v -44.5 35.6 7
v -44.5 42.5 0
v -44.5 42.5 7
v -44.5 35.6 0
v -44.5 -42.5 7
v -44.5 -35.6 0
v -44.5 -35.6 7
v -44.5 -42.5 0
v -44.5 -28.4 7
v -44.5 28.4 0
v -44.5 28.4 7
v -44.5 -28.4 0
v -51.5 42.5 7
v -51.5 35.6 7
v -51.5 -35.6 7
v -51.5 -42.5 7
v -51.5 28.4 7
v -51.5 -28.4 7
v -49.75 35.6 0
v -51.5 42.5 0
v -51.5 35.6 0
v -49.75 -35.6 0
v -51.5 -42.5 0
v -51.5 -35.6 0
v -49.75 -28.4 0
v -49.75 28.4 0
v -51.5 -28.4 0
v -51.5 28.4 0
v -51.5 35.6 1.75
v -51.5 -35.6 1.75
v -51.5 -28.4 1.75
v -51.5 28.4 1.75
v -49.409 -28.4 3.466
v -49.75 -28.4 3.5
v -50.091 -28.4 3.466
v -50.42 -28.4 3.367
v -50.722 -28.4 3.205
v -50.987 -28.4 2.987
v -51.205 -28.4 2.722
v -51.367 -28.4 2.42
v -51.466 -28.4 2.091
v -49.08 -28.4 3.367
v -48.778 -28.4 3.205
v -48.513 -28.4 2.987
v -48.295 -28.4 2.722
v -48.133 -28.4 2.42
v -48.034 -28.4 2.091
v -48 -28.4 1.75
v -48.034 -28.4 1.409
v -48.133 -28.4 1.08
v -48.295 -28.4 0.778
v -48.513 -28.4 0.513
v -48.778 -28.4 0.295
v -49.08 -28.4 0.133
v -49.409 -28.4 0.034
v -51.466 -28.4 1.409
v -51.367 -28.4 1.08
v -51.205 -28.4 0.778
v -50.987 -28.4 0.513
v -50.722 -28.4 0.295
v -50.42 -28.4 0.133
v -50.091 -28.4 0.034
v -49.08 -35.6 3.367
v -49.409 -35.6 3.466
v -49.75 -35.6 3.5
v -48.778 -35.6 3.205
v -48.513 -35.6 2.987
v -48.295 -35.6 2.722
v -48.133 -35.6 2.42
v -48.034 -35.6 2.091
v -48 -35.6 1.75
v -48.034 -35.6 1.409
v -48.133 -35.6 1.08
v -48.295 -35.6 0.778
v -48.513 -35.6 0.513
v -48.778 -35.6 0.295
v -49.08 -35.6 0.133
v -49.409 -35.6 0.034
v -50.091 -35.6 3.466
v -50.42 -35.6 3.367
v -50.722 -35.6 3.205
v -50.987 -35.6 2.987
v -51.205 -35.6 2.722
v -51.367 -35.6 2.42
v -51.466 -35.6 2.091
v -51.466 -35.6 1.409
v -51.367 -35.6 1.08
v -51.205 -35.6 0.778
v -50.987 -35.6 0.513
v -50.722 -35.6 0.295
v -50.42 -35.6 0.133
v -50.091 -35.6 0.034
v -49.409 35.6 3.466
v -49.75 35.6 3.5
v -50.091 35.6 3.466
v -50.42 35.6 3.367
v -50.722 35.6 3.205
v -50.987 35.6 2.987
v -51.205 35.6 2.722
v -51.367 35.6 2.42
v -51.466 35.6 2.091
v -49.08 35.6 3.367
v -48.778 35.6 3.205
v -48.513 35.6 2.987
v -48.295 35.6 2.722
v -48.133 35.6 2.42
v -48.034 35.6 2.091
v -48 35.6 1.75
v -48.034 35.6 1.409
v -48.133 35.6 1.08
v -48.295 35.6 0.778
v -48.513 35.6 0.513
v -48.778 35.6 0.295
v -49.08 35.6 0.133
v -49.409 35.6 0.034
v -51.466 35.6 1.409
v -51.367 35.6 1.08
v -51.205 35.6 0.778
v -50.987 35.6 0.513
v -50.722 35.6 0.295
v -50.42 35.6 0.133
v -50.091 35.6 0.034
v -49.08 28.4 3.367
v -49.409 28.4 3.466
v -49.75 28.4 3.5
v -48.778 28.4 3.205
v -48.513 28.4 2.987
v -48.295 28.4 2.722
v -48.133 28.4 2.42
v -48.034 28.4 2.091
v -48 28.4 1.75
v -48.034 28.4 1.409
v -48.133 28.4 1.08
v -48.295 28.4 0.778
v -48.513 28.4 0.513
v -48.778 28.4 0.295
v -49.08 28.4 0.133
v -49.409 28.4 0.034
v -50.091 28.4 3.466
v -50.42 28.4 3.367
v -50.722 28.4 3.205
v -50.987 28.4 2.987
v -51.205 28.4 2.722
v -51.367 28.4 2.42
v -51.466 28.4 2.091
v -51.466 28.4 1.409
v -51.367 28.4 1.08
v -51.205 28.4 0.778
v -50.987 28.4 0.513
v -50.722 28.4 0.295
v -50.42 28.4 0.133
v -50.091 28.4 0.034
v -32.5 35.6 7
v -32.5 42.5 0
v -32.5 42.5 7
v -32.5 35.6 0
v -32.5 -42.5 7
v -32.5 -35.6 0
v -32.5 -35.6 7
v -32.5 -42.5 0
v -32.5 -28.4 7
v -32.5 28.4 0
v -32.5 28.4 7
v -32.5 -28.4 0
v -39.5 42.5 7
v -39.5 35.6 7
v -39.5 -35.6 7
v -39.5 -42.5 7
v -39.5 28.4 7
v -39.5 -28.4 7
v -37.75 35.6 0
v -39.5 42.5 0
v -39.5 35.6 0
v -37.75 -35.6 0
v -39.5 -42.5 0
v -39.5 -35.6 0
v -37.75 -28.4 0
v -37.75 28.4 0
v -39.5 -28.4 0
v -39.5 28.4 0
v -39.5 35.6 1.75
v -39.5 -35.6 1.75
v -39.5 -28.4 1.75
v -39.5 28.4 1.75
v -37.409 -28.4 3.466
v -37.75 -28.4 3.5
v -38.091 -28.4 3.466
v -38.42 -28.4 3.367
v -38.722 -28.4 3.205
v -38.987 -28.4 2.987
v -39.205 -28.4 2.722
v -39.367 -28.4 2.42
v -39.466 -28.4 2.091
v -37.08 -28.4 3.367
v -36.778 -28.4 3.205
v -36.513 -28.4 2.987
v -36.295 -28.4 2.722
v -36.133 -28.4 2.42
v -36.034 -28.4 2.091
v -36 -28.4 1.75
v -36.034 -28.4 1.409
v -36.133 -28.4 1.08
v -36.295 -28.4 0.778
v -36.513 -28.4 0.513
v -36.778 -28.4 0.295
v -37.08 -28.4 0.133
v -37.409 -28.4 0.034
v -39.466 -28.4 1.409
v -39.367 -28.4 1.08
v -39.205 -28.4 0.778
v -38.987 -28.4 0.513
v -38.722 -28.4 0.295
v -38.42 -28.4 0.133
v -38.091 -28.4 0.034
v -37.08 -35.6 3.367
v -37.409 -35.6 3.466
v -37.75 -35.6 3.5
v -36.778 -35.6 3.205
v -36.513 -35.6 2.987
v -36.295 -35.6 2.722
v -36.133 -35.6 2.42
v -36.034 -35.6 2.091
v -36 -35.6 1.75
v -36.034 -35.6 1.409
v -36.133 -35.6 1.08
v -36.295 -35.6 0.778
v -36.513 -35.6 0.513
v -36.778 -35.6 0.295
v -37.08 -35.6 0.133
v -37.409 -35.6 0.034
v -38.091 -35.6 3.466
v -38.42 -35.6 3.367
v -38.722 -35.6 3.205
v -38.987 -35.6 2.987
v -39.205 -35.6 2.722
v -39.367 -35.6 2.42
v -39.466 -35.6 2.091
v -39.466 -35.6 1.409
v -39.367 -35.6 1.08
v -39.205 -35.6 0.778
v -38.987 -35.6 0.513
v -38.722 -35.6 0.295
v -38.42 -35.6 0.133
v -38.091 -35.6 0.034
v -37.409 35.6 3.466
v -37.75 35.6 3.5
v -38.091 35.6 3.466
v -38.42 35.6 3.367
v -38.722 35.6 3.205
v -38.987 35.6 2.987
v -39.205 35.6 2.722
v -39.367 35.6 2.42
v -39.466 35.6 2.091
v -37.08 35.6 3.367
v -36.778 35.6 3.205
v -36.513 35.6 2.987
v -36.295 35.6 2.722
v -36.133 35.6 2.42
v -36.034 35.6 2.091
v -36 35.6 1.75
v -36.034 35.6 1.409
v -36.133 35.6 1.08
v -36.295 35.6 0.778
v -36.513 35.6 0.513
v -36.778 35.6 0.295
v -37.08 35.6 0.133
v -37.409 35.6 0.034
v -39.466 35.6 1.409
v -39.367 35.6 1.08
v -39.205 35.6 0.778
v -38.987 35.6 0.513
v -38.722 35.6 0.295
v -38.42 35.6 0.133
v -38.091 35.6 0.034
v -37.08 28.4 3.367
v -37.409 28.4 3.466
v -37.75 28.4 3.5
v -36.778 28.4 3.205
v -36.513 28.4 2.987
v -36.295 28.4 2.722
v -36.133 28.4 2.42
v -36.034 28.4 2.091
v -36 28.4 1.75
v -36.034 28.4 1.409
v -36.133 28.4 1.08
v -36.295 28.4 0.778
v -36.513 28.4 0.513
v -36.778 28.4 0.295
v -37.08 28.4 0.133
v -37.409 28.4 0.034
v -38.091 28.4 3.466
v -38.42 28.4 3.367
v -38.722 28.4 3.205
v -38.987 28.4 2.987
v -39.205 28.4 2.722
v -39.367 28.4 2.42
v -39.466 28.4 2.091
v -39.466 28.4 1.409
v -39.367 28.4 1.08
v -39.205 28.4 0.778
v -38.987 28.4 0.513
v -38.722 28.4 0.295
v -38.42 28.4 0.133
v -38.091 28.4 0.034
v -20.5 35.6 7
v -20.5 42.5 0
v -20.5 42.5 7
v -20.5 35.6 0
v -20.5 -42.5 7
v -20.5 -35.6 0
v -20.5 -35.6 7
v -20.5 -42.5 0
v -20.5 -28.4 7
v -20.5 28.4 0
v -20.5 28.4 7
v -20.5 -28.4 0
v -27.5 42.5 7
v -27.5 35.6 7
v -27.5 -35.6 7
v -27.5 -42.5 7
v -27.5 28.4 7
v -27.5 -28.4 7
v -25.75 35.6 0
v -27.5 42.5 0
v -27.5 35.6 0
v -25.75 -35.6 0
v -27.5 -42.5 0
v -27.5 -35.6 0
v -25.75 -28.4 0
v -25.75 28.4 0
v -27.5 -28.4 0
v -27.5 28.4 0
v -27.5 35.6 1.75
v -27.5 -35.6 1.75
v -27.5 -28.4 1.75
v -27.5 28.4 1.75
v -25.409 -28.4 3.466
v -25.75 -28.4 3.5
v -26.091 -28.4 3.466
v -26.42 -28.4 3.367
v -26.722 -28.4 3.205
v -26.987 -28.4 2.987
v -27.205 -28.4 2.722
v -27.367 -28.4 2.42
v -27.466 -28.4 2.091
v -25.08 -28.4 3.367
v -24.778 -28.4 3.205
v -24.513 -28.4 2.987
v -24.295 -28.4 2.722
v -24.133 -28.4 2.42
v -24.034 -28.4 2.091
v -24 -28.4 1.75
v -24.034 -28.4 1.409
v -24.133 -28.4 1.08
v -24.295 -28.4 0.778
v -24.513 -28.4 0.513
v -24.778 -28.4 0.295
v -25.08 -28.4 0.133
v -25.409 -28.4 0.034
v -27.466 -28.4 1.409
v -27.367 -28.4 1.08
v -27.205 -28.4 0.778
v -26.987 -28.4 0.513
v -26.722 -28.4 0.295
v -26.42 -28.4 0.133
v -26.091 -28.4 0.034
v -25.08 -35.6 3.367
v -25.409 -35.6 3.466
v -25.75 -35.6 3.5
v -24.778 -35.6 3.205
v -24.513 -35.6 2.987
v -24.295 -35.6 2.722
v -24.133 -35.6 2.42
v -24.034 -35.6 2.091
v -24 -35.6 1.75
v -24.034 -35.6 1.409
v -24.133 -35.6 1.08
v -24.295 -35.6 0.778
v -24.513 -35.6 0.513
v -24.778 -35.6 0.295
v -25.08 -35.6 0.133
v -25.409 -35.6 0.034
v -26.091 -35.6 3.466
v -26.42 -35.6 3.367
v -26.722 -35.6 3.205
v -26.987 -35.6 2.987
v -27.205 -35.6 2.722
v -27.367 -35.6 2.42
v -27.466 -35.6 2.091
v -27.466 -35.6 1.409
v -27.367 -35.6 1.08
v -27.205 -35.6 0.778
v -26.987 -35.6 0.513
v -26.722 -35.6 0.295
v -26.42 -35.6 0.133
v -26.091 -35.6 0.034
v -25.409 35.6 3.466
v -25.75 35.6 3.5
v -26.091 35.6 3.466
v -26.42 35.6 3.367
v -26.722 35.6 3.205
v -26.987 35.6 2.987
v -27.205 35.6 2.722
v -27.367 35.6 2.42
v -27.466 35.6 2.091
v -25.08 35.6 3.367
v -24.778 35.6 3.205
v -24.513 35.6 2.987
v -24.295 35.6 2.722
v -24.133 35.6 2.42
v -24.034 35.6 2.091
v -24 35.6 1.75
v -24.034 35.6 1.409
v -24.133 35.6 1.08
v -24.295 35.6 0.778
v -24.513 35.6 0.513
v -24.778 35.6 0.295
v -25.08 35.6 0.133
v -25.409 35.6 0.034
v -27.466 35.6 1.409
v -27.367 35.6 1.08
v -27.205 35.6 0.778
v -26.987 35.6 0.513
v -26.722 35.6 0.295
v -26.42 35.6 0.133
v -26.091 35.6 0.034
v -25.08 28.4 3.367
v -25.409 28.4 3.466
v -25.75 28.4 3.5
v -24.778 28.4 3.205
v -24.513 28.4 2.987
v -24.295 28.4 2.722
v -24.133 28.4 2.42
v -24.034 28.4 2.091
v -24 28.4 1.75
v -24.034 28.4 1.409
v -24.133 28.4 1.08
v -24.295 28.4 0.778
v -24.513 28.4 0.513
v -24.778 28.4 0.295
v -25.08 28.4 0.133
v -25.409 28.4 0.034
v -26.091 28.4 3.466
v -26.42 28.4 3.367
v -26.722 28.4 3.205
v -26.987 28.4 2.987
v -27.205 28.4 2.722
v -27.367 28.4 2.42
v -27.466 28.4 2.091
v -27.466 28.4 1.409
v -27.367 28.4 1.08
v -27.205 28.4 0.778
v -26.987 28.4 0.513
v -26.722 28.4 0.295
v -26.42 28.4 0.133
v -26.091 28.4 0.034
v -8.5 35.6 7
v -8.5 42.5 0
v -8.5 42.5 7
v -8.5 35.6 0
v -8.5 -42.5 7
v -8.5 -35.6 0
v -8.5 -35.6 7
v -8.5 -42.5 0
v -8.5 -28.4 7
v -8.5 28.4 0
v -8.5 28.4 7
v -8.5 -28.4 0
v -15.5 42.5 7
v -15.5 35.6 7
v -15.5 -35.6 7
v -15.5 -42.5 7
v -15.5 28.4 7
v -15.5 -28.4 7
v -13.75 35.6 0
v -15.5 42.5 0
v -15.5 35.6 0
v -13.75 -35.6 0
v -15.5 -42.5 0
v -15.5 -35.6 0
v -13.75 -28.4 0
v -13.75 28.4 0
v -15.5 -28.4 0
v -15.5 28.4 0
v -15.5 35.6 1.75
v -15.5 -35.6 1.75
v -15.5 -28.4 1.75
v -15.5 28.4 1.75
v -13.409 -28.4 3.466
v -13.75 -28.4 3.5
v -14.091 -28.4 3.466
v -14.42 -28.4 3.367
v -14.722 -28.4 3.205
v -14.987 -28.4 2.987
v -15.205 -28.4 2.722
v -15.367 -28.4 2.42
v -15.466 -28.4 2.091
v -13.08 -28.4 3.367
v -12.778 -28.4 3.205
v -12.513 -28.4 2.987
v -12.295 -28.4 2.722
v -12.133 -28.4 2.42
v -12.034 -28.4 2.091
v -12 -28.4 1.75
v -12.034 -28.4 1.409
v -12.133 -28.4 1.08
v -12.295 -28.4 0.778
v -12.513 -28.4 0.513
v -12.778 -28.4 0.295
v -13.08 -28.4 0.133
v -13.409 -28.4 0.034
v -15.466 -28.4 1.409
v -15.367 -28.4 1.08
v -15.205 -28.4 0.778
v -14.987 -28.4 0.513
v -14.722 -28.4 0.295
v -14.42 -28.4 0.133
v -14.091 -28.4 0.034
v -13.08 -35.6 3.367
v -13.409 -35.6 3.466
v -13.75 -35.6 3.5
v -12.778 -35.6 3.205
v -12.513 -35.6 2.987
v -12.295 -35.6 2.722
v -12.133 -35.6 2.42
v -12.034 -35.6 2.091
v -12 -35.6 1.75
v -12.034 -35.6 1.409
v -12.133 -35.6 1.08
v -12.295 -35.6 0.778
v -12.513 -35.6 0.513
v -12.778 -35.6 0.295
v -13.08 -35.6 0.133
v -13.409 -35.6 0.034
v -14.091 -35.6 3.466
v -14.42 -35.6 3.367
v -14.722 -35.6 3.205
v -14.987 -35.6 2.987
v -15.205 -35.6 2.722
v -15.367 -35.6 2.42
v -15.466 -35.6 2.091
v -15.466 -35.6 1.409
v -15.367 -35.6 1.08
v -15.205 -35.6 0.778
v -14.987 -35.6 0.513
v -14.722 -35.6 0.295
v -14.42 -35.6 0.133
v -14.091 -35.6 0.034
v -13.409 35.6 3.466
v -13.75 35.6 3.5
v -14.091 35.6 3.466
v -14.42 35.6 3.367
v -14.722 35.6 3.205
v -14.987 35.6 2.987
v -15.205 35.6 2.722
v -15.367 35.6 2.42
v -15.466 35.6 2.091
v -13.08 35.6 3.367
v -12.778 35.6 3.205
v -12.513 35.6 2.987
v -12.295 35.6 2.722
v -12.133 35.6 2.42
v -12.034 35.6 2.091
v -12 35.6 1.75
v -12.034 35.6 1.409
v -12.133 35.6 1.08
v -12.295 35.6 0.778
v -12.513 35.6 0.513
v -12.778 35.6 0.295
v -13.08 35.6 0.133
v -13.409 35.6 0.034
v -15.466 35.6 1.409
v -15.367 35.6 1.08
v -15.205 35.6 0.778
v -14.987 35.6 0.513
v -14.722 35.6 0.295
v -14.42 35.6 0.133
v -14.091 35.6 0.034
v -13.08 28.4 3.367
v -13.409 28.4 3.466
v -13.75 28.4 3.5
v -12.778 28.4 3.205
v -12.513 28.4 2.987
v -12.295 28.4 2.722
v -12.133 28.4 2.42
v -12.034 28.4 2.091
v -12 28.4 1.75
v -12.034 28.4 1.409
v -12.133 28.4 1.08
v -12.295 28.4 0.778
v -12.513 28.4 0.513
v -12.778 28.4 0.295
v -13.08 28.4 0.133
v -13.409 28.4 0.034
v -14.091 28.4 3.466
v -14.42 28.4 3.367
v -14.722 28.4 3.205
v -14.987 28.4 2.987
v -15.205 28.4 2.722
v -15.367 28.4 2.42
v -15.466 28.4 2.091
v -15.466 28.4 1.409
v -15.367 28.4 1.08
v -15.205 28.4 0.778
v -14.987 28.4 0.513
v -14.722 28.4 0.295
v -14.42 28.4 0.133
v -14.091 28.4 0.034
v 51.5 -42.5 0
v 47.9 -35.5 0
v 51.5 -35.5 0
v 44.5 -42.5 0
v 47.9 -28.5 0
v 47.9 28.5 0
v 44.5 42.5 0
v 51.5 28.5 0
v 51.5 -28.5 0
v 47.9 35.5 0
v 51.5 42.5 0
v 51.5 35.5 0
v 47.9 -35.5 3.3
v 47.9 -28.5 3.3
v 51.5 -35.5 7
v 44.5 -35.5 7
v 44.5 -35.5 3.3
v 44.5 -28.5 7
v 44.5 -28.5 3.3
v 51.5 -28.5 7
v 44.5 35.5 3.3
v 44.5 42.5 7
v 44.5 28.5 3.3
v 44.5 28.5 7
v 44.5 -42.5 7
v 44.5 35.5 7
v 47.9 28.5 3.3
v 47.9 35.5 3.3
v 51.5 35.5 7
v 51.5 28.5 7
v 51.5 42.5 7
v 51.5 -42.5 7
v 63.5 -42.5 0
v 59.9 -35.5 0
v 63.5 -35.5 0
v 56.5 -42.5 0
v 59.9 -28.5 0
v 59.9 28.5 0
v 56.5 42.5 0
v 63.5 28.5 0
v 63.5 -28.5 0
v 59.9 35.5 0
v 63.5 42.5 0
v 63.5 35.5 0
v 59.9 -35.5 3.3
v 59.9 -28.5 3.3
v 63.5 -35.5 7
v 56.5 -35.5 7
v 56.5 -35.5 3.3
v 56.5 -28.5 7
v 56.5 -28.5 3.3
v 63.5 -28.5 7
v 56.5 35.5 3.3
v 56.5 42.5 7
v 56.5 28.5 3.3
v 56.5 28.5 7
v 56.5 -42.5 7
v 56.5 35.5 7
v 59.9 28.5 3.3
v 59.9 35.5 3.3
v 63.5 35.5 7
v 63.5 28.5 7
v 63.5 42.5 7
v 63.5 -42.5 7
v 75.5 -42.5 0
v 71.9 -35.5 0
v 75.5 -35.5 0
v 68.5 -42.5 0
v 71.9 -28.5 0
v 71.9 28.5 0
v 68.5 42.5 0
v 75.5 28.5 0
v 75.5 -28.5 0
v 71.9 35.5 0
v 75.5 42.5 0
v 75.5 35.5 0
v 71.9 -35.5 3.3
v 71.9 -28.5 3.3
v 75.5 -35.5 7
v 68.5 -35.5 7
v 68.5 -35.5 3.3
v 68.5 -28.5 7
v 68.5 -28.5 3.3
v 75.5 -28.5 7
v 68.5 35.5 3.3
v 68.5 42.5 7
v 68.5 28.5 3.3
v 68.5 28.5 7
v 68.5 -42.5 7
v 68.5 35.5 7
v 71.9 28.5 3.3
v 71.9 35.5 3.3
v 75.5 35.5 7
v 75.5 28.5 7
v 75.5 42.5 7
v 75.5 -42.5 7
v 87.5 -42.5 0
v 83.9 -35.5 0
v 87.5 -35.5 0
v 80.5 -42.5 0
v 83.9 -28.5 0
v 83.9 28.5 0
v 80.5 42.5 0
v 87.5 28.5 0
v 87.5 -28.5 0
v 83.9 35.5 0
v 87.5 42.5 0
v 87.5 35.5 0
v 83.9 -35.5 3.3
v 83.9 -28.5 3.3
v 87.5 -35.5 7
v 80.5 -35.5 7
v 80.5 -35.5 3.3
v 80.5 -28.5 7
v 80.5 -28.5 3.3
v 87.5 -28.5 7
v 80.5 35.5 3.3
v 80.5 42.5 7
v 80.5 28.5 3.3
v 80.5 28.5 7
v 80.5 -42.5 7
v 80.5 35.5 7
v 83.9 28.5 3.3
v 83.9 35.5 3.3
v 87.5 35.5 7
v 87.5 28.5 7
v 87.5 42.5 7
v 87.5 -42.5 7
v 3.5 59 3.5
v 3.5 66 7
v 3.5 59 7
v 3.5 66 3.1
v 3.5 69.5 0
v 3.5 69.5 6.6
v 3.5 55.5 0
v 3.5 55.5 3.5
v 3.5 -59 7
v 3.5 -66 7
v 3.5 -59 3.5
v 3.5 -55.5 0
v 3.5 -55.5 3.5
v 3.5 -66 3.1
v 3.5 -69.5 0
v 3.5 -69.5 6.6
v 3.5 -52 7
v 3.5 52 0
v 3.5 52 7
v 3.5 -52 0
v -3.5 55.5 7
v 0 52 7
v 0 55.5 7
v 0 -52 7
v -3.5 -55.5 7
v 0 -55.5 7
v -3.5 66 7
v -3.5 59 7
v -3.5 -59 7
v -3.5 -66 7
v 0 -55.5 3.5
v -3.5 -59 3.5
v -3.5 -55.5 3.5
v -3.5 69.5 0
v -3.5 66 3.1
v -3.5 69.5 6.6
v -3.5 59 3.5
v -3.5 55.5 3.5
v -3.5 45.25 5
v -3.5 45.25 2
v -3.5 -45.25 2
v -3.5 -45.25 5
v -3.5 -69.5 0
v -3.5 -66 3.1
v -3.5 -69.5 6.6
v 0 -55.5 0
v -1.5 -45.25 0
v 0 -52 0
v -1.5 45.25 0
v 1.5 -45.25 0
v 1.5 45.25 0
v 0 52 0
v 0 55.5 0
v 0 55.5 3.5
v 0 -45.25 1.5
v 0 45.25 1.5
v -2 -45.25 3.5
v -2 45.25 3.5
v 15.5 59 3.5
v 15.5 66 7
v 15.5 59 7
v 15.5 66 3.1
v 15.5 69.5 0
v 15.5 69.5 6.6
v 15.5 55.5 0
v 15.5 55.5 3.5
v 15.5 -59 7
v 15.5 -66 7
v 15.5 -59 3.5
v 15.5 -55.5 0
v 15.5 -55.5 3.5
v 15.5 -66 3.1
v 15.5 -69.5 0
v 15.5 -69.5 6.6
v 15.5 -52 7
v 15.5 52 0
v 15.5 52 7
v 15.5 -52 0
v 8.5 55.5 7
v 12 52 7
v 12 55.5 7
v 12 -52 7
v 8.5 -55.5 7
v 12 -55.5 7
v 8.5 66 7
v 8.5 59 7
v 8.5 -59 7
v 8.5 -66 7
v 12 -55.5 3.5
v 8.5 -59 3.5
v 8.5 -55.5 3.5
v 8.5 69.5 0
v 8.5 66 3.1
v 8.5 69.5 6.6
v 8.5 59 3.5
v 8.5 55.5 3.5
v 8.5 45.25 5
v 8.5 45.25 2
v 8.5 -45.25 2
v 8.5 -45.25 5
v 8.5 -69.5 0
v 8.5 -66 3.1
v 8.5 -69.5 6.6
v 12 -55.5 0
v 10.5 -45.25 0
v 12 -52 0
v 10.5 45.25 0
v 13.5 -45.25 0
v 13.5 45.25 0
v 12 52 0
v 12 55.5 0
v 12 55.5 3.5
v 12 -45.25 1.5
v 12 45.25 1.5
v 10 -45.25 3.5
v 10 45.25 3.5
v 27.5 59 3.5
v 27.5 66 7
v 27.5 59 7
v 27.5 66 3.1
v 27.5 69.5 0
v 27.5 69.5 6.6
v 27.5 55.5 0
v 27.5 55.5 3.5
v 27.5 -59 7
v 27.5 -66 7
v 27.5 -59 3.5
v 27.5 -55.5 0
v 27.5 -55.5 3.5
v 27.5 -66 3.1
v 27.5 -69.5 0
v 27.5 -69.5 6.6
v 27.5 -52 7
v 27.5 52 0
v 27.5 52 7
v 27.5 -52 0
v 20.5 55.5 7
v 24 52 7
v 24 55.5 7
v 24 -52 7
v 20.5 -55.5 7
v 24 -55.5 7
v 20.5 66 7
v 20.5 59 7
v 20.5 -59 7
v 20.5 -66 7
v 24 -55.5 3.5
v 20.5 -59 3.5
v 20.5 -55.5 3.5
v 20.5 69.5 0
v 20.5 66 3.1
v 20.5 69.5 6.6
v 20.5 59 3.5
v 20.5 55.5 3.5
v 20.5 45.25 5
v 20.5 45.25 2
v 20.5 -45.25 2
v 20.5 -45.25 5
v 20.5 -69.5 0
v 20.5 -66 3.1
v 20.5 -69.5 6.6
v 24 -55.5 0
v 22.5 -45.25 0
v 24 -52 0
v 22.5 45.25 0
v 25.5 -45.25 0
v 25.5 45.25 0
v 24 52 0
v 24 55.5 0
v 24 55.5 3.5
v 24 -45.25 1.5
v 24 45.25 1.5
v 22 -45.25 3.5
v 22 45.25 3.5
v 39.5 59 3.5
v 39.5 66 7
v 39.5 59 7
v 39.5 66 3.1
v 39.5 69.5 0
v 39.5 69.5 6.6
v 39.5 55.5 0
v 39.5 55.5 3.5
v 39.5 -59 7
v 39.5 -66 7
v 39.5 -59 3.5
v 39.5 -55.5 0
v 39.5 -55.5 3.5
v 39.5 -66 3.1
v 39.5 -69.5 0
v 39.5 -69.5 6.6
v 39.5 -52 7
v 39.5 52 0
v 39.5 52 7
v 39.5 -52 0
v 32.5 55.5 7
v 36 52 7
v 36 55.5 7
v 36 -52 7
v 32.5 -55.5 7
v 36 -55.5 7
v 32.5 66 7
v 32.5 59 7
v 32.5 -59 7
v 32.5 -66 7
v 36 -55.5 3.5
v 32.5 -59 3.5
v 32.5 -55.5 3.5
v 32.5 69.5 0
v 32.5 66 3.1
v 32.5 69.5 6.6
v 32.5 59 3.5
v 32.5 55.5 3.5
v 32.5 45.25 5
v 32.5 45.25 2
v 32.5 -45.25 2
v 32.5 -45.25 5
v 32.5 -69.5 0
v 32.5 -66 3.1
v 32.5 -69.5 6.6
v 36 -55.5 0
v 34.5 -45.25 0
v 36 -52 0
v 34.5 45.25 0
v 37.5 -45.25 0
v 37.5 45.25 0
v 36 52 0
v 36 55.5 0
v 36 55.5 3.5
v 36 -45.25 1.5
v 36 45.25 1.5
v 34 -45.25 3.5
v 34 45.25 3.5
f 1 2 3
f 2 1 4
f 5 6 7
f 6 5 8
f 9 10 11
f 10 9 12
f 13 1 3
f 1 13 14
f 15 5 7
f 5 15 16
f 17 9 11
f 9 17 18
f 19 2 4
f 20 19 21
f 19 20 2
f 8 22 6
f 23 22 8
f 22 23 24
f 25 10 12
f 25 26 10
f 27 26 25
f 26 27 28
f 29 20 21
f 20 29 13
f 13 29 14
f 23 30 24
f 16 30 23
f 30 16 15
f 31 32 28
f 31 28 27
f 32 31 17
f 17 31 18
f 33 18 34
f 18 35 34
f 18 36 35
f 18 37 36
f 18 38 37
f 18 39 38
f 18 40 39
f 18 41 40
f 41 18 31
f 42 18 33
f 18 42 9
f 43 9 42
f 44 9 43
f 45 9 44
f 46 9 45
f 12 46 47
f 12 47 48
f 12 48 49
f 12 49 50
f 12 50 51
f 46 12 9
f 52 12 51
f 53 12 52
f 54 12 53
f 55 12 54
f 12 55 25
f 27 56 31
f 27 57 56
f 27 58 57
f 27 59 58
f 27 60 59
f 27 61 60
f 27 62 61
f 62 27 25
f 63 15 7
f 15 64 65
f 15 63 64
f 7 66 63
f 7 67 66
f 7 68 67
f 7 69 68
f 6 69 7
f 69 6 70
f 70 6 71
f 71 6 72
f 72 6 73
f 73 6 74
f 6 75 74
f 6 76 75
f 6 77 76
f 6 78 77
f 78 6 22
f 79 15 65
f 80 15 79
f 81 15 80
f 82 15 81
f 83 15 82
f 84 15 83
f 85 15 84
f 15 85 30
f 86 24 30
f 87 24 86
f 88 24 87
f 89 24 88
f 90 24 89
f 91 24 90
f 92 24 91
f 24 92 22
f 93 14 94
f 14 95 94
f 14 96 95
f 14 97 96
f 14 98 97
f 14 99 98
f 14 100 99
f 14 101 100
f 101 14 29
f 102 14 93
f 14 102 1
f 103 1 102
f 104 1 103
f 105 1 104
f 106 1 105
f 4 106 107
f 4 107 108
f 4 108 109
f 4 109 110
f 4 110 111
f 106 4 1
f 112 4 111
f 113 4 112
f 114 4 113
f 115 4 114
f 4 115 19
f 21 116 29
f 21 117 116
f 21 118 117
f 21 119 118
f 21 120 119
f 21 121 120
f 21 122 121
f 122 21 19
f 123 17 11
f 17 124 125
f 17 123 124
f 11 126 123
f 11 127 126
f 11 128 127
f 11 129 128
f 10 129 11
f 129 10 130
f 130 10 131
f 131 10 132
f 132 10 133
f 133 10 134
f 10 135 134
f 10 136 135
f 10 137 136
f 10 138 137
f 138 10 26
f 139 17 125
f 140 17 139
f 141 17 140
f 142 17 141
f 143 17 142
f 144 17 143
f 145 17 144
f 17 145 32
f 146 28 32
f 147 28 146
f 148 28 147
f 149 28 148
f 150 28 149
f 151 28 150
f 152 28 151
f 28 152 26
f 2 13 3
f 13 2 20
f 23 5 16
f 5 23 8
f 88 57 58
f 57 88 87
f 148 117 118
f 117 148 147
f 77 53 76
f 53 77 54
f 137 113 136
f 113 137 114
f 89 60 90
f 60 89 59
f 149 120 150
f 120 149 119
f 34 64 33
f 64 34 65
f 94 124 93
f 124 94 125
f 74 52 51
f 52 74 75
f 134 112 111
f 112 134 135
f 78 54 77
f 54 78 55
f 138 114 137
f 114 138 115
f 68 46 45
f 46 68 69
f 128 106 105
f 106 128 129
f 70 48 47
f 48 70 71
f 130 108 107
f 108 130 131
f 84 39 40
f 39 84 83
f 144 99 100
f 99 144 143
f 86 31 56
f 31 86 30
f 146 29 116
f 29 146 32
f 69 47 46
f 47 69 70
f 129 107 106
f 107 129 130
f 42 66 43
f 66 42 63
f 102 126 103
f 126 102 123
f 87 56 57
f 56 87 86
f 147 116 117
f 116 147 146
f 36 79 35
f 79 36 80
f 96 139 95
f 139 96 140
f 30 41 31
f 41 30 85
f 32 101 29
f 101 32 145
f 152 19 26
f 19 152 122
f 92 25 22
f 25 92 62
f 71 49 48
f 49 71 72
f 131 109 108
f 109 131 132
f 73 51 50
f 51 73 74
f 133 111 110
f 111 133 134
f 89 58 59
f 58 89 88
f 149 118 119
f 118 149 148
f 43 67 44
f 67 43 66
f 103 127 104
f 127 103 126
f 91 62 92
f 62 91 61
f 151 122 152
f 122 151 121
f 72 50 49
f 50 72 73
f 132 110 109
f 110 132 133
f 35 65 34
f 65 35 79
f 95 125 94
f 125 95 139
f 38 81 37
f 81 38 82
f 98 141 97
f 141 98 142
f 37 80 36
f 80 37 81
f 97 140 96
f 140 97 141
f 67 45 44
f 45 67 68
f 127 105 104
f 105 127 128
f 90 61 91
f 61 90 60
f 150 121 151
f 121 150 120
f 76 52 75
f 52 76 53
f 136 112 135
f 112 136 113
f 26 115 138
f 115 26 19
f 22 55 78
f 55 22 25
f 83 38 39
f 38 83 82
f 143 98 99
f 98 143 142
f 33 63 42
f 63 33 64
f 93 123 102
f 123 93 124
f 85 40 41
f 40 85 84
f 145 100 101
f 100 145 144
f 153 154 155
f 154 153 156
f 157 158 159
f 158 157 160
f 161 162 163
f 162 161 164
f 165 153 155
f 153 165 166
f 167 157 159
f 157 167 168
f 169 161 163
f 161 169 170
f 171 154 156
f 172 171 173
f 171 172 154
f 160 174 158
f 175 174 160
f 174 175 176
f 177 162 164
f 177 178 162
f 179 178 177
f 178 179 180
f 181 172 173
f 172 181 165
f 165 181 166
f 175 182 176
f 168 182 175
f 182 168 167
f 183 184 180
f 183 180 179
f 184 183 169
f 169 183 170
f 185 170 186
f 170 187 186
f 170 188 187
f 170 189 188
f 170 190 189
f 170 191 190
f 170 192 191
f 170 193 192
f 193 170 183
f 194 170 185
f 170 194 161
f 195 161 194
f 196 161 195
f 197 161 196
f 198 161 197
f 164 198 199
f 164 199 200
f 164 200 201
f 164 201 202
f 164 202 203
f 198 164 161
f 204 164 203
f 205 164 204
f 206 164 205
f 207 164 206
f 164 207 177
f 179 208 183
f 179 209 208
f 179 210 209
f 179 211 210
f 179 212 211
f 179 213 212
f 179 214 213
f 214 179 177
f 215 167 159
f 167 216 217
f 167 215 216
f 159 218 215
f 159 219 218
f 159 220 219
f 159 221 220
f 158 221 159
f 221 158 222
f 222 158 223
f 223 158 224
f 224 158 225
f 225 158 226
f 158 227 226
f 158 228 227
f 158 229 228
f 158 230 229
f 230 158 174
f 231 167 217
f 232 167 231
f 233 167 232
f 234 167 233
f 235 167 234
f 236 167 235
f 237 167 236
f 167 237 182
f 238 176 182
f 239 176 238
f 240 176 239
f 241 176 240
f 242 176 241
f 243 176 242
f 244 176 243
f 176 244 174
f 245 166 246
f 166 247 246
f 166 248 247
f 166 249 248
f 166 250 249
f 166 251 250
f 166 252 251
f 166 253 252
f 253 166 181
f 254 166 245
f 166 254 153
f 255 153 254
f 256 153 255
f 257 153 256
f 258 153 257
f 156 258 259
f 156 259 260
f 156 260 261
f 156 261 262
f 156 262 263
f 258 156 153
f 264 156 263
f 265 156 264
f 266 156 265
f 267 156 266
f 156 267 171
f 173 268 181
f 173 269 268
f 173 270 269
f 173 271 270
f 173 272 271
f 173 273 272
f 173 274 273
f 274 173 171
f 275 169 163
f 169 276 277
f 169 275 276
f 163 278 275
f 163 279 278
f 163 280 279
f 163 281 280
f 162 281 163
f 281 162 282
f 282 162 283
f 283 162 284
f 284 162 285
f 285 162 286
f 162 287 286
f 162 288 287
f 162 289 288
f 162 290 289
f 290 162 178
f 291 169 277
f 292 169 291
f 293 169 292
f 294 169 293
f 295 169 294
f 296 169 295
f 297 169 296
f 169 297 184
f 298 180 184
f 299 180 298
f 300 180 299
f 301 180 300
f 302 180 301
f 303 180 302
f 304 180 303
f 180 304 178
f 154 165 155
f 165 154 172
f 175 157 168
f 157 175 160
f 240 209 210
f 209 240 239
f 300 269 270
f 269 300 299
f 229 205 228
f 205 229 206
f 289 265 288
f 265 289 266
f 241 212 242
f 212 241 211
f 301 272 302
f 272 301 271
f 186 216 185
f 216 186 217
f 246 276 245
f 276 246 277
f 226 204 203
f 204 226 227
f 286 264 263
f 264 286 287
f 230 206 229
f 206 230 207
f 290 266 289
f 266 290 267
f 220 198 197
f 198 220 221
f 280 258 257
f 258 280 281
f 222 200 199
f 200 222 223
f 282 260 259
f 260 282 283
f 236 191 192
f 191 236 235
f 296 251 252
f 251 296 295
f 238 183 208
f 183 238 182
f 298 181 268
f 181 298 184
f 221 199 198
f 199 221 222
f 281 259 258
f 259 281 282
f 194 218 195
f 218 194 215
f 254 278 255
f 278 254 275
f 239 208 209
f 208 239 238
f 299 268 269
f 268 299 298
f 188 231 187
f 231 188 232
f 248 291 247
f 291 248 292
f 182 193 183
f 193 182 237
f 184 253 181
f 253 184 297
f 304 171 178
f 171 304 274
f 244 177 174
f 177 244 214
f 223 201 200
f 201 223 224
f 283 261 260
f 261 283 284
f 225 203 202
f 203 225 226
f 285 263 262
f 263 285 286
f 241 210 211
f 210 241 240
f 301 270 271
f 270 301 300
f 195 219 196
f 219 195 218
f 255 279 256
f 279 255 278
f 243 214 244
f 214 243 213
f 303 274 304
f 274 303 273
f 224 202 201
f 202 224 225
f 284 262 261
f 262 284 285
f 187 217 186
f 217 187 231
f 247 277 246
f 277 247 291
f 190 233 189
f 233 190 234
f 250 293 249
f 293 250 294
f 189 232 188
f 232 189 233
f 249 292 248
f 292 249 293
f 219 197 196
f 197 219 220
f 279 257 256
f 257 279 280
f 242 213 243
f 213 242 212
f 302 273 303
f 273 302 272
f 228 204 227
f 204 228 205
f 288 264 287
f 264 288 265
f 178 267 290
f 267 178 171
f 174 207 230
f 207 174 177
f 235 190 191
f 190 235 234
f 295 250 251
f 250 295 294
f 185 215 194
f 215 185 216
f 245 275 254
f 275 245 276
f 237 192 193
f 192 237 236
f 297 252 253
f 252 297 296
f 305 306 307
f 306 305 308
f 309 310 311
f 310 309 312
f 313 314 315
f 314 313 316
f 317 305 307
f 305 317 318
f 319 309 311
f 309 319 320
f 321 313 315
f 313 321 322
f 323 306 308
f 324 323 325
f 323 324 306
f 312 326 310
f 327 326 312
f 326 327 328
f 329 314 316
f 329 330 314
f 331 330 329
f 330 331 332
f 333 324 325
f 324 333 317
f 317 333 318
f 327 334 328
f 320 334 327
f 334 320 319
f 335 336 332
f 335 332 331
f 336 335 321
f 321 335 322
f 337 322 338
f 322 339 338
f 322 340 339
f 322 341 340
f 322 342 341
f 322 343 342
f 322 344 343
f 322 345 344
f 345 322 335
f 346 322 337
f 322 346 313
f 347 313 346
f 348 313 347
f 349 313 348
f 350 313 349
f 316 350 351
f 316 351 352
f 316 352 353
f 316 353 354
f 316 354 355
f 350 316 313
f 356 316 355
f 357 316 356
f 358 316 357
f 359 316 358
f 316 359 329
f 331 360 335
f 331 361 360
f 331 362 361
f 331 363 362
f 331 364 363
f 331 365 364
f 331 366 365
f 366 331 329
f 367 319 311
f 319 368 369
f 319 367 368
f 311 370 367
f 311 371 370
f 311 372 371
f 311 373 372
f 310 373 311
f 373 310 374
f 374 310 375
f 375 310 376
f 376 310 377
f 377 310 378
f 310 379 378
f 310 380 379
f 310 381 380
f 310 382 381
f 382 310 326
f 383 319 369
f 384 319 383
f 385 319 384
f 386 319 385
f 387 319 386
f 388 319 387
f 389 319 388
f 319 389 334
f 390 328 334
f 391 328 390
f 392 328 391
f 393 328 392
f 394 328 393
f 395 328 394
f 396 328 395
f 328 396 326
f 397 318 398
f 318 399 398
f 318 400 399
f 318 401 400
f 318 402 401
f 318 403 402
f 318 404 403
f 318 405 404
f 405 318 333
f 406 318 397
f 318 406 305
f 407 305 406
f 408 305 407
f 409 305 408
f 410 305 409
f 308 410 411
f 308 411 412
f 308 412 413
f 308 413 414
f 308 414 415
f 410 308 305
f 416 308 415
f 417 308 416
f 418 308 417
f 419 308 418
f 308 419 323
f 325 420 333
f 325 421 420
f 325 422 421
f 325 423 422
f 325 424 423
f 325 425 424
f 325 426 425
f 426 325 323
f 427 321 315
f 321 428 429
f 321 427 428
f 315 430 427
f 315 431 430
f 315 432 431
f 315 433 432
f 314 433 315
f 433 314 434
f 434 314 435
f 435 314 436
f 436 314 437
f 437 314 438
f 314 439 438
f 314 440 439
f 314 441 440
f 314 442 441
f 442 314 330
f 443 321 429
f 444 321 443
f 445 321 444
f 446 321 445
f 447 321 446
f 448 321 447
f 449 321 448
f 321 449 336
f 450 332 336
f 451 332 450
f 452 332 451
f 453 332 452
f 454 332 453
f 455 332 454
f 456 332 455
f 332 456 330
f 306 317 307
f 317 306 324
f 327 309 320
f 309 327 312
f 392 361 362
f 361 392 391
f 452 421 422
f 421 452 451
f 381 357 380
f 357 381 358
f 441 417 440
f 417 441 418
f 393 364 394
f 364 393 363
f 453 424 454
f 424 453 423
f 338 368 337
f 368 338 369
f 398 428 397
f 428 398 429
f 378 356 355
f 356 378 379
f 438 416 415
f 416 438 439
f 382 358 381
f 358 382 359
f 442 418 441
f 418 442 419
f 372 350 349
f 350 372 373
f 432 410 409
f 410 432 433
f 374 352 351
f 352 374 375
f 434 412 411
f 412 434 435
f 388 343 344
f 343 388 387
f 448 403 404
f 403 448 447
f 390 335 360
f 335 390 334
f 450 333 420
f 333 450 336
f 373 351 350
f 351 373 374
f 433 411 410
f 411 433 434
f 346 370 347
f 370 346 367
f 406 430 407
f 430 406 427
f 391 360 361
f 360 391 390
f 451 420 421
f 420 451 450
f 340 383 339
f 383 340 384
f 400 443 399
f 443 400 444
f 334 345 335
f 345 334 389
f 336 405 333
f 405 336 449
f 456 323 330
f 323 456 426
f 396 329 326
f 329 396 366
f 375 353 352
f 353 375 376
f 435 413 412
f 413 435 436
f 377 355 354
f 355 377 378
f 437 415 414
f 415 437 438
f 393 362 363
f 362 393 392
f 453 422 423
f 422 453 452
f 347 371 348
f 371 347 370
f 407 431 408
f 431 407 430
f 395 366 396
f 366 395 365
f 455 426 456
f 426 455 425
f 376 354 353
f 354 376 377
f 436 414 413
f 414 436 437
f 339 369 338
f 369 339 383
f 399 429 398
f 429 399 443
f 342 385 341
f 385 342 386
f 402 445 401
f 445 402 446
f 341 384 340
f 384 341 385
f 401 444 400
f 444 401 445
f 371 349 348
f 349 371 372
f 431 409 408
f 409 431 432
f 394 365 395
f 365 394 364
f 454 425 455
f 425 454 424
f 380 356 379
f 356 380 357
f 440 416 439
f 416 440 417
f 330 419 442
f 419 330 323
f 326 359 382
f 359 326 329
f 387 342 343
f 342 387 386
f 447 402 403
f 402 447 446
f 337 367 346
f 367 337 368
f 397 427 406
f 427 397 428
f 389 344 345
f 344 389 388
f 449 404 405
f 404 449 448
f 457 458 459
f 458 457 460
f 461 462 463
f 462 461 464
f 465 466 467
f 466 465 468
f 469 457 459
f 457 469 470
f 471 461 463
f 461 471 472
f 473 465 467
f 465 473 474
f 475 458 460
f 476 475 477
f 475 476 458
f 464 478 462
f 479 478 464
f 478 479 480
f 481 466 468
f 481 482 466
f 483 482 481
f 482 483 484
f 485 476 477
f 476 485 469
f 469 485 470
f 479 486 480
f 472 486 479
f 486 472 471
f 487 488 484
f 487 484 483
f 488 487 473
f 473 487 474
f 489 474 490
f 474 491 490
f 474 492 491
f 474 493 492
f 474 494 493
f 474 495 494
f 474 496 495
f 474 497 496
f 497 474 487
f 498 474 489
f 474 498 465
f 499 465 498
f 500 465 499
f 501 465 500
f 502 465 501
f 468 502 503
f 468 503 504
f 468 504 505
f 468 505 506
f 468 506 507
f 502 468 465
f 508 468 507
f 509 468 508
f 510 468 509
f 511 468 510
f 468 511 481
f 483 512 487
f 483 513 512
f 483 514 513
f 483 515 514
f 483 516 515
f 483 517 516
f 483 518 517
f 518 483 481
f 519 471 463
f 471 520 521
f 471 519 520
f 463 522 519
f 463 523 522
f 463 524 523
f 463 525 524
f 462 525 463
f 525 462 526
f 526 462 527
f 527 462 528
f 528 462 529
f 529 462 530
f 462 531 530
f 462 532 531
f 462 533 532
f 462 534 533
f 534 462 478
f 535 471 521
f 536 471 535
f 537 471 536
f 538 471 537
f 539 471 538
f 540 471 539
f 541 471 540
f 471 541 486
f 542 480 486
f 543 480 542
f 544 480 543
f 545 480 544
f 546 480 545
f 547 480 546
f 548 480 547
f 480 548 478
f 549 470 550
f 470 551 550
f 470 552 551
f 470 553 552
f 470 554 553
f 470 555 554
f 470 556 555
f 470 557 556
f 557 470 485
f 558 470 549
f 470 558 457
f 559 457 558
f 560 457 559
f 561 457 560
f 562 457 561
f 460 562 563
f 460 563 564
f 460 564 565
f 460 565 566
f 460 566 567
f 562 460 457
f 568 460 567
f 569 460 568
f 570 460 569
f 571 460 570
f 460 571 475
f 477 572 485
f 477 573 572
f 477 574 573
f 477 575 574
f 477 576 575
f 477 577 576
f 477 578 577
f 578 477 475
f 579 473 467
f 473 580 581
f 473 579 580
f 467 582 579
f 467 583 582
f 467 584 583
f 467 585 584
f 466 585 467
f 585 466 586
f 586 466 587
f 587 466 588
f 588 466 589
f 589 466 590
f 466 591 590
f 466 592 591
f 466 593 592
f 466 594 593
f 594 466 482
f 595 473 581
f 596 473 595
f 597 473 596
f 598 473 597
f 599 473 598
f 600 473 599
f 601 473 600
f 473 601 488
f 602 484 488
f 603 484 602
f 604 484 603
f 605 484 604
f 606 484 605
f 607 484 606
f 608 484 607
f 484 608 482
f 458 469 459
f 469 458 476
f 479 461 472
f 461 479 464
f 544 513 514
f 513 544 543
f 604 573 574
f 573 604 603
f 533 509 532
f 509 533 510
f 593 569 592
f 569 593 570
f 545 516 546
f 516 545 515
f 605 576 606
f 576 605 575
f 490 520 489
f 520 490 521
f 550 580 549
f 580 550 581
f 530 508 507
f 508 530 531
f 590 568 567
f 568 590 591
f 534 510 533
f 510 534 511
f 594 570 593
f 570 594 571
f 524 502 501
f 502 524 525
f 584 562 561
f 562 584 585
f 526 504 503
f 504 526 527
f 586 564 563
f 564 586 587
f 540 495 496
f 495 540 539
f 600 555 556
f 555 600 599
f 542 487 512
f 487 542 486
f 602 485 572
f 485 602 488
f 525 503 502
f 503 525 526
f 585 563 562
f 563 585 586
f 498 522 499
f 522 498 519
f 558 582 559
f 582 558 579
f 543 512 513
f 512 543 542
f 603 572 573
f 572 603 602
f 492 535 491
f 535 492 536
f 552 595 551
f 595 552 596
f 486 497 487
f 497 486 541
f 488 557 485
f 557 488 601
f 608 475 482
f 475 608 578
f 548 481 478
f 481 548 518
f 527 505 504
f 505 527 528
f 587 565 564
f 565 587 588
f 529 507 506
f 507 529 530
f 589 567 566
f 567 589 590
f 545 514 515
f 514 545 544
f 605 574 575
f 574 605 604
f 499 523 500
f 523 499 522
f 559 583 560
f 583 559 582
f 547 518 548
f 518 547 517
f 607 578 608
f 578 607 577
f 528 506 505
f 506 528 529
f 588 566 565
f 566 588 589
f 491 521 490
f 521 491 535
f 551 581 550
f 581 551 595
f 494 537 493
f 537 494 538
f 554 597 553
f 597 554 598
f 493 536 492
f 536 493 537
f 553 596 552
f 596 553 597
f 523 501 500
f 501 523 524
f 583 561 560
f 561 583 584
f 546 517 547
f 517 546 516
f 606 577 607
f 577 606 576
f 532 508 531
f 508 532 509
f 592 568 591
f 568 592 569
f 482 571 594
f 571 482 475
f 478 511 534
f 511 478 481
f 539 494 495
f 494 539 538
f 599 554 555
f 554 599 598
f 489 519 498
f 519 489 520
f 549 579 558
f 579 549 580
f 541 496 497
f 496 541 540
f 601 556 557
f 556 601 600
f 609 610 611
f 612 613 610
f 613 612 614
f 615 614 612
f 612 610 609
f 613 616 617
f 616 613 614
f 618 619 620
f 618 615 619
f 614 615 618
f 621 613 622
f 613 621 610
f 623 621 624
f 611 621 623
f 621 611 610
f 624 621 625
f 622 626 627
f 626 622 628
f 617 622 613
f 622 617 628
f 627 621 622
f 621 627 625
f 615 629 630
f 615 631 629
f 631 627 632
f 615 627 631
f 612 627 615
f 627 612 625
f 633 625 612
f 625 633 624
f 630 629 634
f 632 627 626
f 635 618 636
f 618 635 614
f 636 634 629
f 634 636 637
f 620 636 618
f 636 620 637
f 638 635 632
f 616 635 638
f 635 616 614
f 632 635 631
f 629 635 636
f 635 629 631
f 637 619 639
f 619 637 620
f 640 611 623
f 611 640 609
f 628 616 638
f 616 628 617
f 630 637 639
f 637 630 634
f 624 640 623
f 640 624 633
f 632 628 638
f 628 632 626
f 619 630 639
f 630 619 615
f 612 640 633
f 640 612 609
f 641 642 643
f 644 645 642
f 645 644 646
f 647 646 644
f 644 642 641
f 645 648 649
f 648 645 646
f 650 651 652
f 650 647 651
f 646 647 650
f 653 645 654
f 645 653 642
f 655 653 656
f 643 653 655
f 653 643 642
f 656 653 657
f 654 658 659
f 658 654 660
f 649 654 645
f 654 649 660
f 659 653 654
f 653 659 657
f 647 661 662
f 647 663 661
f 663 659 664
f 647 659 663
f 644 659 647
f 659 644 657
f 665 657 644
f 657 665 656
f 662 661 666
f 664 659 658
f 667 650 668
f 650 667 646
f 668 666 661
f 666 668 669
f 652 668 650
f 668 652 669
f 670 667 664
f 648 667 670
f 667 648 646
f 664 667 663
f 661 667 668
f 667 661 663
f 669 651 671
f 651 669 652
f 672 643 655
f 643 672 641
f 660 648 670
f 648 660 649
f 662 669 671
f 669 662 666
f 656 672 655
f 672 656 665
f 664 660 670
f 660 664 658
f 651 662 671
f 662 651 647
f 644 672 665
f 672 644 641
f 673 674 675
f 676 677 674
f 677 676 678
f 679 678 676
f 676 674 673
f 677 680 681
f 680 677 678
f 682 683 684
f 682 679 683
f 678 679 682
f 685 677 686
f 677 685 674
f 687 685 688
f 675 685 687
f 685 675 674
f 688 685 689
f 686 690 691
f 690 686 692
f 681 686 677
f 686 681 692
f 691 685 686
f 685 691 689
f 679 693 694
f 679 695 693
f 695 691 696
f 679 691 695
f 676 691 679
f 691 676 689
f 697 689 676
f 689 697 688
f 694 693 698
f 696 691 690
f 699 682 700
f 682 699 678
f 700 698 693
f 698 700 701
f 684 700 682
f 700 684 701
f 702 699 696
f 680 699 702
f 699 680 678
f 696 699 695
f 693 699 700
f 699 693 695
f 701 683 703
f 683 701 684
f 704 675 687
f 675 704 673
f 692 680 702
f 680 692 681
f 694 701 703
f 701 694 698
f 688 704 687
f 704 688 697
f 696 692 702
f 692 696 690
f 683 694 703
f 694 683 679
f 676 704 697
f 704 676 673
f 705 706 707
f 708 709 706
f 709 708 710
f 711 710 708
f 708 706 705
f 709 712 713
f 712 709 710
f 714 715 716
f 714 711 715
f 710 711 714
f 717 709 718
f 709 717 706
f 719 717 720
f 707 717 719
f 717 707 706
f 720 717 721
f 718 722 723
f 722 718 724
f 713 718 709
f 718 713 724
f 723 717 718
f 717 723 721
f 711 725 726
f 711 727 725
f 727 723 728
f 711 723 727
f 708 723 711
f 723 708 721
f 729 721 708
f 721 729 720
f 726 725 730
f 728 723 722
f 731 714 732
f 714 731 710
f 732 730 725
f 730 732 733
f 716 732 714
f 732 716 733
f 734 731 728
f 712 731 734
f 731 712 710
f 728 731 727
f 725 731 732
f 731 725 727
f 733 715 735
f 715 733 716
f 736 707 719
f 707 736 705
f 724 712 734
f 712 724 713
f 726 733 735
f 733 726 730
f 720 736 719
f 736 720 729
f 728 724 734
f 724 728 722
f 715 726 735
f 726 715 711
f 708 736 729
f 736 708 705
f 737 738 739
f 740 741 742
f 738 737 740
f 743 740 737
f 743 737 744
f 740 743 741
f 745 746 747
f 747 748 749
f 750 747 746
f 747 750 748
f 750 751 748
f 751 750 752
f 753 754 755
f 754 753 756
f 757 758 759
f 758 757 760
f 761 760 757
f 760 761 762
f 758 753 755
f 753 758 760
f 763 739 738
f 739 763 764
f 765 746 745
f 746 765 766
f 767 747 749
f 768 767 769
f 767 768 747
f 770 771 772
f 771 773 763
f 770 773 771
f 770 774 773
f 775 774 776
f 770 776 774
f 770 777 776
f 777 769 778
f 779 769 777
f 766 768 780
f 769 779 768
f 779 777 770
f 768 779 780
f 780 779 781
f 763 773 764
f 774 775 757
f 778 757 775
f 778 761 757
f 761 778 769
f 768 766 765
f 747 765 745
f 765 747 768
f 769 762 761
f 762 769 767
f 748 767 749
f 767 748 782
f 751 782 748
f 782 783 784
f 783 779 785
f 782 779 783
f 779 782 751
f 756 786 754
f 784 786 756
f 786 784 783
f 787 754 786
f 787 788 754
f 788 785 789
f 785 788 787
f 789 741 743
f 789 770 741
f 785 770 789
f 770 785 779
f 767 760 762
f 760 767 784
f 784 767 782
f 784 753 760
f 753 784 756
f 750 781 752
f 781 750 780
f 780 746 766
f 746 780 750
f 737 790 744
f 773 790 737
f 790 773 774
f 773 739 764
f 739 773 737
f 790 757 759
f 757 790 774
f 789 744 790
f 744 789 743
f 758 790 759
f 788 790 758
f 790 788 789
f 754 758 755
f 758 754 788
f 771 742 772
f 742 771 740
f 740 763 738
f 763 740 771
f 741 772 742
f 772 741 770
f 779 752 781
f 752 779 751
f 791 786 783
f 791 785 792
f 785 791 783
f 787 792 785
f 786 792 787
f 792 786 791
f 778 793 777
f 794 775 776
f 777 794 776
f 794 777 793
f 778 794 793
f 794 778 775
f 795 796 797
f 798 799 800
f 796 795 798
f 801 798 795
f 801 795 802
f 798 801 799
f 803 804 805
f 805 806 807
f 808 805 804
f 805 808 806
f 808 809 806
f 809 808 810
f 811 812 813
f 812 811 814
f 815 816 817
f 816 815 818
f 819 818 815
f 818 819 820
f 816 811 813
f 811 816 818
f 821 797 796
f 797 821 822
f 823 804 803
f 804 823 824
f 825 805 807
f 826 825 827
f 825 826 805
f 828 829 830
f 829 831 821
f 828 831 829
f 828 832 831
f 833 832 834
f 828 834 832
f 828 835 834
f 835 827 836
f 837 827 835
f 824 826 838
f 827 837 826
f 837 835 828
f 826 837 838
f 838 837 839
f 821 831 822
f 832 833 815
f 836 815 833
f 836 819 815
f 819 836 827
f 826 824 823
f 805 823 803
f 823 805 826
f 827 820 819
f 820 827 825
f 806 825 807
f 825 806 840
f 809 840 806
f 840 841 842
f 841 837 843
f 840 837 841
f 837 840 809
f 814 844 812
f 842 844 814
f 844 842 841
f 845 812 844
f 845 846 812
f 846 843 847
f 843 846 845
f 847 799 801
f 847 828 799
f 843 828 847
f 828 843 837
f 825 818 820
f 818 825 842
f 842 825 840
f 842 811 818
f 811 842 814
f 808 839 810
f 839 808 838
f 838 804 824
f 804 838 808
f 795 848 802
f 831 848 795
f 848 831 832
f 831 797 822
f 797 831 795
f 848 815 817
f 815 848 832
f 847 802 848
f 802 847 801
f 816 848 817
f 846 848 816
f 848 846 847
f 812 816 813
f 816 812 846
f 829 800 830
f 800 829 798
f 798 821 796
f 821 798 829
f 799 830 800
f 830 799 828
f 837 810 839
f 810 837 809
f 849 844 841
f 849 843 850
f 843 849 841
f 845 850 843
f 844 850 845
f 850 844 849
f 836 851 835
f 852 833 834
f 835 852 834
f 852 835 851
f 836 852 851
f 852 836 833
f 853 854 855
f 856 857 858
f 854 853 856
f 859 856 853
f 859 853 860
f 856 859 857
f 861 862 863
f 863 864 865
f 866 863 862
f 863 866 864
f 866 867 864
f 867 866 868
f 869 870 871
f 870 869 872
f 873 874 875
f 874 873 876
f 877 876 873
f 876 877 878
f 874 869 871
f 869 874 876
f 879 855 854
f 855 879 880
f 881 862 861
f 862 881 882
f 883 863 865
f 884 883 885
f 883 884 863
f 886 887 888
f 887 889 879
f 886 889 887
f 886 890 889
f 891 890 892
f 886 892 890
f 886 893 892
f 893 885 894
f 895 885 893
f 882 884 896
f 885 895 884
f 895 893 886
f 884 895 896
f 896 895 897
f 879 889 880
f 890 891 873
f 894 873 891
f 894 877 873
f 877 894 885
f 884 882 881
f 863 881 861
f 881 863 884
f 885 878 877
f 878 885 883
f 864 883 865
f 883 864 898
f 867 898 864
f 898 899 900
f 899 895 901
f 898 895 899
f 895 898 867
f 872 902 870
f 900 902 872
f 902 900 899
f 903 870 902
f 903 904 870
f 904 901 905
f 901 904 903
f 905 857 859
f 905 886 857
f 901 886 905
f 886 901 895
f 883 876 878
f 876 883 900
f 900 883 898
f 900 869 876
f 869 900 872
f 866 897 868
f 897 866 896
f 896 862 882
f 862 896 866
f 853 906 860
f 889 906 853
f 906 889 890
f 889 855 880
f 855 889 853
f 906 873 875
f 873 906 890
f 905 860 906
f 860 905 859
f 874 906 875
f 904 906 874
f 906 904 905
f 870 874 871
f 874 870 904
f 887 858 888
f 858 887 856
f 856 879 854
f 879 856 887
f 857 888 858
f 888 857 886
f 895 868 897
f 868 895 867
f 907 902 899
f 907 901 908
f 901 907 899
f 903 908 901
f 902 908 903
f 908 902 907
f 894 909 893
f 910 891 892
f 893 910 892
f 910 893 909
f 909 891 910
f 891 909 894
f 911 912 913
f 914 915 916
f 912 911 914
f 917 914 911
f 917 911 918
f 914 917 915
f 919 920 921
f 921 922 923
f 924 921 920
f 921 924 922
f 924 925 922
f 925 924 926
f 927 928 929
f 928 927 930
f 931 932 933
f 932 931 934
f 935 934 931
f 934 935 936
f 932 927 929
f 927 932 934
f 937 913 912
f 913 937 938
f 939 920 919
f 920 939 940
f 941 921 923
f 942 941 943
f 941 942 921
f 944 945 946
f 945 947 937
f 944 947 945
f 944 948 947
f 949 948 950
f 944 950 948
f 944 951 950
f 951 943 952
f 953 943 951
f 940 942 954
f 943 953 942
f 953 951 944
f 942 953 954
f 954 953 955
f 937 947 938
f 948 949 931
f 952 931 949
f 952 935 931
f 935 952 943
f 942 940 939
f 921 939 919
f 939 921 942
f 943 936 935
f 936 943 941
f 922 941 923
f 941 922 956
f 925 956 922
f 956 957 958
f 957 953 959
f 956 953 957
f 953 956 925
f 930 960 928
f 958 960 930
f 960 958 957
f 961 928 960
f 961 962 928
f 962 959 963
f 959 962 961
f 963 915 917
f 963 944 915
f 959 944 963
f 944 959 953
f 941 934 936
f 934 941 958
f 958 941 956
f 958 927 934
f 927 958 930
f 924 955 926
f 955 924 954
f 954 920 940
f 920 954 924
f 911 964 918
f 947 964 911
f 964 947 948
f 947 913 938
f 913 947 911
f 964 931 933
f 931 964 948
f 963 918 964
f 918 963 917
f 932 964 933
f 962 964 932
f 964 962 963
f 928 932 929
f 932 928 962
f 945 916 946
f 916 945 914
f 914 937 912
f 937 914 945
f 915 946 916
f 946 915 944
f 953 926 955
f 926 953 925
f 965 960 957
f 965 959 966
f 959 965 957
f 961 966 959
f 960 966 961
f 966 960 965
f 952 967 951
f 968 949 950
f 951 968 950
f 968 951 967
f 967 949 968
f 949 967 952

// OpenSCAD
W=64;
W2=100;
H=90;
T=1.5;
B=7;
Q=7;
H1=7;
HR=12;

for(i=[0:1:3]) {
    translate([i*12,0,0])
    column();
    translate([i*12+48,0,0])
    crossX();
    translate([i*12-48,0,0])
    crossY();
}



module column() {
    difference() {
        cube_center([H1,H+7*H1,H1]);
        for(s=[-1:2:1]) {
            scale([1,s,1]) {
                translate([0,H/2+3*H1-H1/4-H1,H1/2])
                cube_center([H1,H1/2,H1/2]);
                translate([H1/2-H1/4,H/2+3*H1-H1/4-H1-H1/2,0])
                cube_center([H1/2,H1/2,H1]);
                
                translate([0,H/2+3*H1,H1-0.4])
                scale([H1,H1/2,H1/2])
                rotate([0,90,0]) 
                triangle();
                
                
                translate([0,H/2+3.5*H1,H1-0.4])
                cube_center([H1,H1,H1]);
            
            
        } }
        
        rotate([90,0,0])
        rotate([0,0,45])
        cube([T*sqrt(2),T*sqrt(2),H+0.5],center=true);
        
        translate([-H1/2,0,H1/2])
        rotate([90,0,0])
        rotate([0,0,45])
        cube([T*sqrt(2),T*sqrt(2),H+0.5],center=true);
        
    }
    
    
}

module crossX() {
    difference() {
        cube_center([H1,W+3*H1,H1]);
        for(s=[-1:2:1]) {
            scale([1,s,1]) {
                translate([H1/4,(W+3*H1)/2-H1/2-H1,0])
                cube_center([H1/2+0.2,H1,H1]);
                translate([0,(W+3*H1)/2-H1/2-H1,H1/2-0.2])
                cube_center([H1,H1,H1]);
            }
        }
    }
}

module crossY() {
    translate([-H1/4,0,H1/4])
    rotate([90,0,0])
    cylinder(d=H1/2,h=W+3*H1,center=true,$fn=32);
    difference() {
        cube_center([H1,W+3*H1,H1]);
        for(s=[-1:2:1]) {
            scale([1,s,1]) {
                translate([0,(W+3*H1)/2-H1/2-H1,0])
                cube_center([H1,H1+0.2,H1]);
            }
        }
    }
}

module cube_center(dims,r=0) {
    if(r==0) {
        translate([-dims[0]/2, -dims[1]/2, 0])
        cube(dims);
    } else {
        
        minkowski() {
            translate([-dims[0]/2+r, -dims[1]/2+r, 0])
            cube([dims[0]-2*r,dims[1]-2*r,dims[2]]);
            cylinder(r=r,h=0.00001,$fn=32);
        }
    }
}


module triangle() {
    linear_extrude(height = 1, center = true, convexity = 10, twist = 0)
    polygon(points=[[0,0],[1,0],[0,1]]);
}
